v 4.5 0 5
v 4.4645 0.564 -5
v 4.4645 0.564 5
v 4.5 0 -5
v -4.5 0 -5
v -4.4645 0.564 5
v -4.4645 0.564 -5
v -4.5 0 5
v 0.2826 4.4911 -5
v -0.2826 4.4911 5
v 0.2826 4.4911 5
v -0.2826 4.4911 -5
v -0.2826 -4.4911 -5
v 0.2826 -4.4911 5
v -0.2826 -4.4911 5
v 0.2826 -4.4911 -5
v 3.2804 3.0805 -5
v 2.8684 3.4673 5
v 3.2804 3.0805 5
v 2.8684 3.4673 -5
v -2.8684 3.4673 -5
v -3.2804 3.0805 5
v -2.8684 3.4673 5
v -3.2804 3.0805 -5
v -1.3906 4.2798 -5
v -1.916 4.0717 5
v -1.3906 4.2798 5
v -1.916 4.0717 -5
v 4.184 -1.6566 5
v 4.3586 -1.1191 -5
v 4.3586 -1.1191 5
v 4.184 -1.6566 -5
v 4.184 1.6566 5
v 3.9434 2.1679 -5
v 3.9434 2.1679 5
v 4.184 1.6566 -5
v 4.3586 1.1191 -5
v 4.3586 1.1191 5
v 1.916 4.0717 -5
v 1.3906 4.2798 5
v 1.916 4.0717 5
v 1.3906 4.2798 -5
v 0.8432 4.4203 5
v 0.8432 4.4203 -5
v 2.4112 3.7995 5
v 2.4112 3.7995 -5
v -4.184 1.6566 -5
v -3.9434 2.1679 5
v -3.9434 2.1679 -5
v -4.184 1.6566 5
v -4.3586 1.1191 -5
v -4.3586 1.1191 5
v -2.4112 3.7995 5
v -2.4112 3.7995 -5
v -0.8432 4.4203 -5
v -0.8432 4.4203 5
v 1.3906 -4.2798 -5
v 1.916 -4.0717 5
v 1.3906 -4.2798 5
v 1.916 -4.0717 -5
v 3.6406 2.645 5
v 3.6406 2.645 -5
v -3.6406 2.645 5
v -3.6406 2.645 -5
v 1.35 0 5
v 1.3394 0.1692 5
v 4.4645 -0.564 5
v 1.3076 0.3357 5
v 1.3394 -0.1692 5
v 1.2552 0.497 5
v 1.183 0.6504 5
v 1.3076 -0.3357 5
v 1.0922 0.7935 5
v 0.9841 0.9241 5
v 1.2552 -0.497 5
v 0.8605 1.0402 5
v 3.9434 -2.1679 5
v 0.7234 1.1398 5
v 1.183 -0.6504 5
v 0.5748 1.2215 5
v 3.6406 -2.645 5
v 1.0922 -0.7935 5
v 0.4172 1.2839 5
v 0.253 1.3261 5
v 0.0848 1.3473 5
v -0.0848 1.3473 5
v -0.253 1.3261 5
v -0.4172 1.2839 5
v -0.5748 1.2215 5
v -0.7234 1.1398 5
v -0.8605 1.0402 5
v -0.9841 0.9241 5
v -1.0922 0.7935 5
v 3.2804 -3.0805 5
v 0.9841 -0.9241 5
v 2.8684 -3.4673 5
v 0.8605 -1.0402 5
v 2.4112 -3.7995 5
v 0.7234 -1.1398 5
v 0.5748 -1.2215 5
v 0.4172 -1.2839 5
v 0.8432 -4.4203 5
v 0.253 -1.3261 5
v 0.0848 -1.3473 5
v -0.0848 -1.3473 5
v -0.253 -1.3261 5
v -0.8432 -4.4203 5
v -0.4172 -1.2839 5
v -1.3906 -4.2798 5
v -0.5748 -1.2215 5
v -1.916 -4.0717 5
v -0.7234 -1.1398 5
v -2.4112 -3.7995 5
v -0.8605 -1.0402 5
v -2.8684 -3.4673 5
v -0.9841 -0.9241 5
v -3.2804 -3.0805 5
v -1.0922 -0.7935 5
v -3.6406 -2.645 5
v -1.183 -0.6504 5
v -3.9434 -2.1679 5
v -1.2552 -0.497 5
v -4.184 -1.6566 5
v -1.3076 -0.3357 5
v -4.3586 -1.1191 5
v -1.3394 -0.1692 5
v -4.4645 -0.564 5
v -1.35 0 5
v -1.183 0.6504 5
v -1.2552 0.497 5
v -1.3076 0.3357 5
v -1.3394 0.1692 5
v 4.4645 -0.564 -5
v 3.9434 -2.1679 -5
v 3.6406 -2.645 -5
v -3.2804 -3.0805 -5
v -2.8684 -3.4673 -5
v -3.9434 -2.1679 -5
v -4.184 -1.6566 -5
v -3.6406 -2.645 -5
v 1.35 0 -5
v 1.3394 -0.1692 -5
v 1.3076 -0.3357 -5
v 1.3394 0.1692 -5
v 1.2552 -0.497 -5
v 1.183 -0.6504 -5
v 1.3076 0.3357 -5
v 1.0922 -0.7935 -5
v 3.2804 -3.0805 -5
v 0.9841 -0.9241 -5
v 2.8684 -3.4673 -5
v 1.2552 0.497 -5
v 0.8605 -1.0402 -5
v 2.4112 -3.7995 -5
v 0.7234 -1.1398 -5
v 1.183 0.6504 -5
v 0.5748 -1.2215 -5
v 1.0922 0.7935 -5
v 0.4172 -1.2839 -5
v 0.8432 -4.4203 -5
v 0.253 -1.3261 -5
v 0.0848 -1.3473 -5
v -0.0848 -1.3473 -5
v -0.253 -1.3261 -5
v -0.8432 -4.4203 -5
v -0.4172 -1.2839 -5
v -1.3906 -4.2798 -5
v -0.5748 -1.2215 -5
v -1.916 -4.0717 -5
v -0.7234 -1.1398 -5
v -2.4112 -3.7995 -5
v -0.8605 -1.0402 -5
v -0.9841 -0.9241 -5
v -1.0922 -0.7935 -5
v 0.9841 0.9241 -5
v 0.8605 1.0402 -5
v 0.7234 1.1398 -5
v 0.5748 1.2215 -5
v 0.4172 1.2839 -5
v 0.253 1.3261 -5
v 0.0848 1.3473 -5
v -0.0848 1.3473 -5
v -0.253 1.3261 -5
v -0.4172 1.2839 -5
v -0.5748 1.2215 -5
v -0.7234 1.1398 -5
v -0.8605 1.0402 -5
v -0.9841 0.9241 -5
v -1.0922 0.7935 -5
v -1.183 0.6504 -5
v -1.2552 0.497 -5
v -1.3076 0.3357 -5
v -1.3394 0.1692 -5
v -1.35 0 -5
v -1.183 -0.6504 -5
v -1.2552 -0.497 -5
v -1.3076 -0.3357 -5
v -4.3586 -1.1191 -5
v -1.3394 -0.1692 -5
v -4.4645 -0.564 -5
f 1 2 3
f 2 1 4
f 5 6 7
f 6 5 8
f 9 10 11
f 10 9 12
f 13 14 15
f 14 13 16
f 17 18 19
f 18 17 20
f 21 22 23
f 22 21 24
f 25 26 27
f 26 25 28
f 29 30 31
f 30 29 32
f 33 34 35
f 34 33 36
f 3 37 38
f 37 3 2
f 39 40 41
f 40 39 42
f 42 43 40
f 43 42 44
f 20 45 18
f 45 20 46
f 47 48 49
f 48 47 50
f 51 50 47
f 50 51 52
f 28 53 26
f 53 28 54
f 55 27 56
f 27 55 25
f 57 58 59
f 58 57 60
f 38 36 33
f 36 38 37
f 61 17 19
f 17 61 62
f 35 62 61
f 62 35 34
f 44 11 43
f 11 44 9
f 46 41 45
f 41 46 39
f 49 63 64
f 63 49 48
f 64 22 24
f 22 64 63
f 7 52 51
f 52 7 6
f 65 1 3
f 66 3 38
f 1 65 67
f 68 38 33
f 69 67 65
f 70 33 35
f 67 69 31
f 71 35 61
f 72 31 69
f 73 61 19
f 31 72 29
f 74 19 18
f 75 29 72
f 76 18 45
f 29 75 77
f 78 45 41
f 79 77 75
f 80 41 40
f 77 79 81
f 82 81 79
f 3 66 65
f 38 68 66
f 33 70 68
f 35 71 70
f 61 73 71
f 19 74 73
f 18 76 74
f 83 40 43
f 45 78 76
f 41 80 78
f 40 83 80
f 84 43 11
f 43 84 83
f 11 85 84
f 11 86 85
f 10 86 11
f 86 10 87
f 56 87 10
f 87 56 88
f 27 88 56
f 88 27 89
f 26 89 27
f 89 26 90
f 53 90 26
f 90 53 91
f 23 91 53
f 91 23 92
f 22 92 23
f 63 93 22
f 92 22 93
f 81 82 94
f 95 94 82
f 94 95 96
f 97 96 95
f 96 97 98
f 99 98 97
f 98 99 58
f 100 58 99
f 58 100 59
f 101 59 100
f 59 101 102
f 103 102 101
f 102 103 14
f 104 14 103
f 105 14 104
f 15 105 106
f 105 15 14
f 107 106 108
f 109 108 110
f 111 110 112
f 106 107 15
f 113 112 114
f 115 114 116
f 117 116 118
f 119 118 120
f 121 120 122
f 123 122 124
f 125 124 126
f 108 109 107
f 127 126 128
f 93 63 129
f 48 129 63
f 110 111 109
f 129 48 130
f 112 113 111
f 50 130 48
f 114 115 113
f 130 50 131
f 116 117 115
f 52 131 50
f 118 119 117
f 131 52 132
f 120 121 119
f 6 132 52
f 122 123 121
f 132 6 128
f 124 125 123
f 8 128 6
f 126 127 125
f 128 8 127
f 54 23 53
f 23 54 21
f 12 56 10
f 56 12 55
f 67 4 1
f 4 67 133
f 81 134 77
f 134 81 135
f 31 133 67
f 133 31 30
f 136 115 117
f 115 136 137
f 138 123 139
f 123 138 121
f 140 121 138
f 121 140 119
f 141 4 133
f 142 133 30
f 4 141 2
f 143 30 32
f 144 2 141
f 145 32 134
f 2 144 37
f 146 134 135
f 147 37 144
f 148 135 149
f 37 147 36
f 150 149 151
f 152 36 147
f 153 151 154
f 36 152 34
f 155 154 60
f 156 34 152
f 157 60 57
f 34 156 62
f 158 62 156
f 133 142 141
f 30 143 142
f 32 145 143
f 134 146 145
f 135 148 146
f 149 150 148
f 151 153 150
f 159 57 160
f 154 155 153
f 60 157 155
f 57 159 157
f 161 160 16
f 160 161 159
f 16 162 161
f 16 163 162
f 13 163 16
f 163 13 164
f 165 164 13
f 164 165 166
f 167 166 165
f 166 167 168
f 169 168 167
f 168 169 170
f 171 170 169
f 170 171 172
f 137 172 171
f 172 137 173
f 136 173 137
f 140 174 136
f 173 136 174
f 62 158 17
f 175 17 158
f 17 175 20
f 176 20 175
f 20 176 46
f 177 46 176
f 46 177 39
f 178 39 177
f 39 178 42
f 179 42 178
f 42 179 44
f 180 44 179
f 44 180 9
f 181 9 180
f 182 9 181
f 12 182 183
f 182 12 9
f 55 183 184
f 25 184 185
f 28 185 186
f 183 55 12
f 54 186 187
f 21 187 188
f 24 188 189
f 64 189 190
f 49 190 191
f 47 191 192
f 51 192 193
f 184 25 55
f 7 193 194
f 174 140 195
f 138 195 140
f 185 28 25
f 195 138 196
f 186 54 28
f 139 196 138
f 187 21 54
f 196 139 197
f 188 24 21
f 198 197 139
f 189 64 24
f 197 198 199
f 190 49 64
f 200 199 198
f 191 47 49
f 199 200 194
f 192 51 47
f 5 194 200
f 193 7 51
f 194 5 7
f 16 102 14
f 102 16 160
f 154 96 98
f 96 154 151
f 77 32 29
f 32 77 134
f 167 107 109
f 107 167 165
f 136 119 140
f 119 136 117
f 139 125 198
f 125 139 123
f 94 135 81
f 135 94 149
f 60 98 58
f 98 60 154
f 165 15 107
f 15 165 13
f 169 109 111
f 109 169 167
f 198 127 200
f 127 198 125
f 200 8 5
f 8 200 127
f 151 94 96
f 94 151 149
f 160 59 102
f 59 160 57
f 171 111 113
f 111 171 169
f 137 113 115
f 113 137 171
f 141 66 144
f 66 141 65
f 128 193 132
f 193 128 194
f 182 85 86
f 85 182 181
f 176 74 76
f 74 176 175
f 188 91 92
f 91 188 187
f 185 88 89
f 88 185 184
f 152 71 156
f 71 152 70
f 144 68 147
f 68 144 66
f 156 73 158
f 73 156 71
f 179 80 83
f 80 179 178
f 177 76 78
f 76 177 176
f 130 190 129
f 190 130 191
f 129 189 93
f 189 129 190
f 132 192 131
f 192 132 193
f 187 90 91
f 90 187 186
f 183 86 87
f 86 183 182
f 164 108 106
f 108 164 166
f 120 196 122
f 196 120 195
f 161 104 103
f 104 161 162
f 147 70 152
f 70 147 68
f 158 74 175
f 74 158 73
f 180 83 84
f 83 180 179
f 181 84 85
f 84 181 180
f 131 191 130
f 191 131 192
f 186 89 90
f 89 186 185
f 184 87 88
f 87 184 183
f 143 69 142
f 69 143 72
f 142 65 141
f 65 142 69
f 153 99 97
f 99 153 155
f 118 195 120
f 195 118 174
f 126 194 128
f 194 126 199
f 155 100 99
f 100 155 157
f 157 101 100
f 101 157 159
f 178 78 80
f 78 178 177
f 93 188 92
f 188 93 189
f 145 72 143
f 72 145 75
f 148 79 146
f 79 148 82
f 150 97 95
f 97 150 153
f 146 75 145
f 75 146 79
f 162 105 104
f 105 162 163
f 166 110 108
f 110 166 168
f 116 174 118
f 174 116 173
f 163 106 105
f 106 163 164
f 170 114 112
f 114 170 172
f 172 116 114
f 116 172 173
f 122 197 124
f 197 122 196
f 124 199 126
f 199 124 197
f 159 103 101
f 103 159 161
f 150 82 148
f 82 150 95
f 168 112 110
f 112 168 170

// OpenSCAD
$fn = 50;


difference() {
	union() {
		translate(v = [0, 0, -5.0000000000]) {
			cylinder(h = 10, r = 4.5000000000);
		}
	}
	union() {
		translate(v = [0, 0, -100.0000000000]) {
			cylinder(h = 200, r = 1.3500000000);
		}
	}
}
